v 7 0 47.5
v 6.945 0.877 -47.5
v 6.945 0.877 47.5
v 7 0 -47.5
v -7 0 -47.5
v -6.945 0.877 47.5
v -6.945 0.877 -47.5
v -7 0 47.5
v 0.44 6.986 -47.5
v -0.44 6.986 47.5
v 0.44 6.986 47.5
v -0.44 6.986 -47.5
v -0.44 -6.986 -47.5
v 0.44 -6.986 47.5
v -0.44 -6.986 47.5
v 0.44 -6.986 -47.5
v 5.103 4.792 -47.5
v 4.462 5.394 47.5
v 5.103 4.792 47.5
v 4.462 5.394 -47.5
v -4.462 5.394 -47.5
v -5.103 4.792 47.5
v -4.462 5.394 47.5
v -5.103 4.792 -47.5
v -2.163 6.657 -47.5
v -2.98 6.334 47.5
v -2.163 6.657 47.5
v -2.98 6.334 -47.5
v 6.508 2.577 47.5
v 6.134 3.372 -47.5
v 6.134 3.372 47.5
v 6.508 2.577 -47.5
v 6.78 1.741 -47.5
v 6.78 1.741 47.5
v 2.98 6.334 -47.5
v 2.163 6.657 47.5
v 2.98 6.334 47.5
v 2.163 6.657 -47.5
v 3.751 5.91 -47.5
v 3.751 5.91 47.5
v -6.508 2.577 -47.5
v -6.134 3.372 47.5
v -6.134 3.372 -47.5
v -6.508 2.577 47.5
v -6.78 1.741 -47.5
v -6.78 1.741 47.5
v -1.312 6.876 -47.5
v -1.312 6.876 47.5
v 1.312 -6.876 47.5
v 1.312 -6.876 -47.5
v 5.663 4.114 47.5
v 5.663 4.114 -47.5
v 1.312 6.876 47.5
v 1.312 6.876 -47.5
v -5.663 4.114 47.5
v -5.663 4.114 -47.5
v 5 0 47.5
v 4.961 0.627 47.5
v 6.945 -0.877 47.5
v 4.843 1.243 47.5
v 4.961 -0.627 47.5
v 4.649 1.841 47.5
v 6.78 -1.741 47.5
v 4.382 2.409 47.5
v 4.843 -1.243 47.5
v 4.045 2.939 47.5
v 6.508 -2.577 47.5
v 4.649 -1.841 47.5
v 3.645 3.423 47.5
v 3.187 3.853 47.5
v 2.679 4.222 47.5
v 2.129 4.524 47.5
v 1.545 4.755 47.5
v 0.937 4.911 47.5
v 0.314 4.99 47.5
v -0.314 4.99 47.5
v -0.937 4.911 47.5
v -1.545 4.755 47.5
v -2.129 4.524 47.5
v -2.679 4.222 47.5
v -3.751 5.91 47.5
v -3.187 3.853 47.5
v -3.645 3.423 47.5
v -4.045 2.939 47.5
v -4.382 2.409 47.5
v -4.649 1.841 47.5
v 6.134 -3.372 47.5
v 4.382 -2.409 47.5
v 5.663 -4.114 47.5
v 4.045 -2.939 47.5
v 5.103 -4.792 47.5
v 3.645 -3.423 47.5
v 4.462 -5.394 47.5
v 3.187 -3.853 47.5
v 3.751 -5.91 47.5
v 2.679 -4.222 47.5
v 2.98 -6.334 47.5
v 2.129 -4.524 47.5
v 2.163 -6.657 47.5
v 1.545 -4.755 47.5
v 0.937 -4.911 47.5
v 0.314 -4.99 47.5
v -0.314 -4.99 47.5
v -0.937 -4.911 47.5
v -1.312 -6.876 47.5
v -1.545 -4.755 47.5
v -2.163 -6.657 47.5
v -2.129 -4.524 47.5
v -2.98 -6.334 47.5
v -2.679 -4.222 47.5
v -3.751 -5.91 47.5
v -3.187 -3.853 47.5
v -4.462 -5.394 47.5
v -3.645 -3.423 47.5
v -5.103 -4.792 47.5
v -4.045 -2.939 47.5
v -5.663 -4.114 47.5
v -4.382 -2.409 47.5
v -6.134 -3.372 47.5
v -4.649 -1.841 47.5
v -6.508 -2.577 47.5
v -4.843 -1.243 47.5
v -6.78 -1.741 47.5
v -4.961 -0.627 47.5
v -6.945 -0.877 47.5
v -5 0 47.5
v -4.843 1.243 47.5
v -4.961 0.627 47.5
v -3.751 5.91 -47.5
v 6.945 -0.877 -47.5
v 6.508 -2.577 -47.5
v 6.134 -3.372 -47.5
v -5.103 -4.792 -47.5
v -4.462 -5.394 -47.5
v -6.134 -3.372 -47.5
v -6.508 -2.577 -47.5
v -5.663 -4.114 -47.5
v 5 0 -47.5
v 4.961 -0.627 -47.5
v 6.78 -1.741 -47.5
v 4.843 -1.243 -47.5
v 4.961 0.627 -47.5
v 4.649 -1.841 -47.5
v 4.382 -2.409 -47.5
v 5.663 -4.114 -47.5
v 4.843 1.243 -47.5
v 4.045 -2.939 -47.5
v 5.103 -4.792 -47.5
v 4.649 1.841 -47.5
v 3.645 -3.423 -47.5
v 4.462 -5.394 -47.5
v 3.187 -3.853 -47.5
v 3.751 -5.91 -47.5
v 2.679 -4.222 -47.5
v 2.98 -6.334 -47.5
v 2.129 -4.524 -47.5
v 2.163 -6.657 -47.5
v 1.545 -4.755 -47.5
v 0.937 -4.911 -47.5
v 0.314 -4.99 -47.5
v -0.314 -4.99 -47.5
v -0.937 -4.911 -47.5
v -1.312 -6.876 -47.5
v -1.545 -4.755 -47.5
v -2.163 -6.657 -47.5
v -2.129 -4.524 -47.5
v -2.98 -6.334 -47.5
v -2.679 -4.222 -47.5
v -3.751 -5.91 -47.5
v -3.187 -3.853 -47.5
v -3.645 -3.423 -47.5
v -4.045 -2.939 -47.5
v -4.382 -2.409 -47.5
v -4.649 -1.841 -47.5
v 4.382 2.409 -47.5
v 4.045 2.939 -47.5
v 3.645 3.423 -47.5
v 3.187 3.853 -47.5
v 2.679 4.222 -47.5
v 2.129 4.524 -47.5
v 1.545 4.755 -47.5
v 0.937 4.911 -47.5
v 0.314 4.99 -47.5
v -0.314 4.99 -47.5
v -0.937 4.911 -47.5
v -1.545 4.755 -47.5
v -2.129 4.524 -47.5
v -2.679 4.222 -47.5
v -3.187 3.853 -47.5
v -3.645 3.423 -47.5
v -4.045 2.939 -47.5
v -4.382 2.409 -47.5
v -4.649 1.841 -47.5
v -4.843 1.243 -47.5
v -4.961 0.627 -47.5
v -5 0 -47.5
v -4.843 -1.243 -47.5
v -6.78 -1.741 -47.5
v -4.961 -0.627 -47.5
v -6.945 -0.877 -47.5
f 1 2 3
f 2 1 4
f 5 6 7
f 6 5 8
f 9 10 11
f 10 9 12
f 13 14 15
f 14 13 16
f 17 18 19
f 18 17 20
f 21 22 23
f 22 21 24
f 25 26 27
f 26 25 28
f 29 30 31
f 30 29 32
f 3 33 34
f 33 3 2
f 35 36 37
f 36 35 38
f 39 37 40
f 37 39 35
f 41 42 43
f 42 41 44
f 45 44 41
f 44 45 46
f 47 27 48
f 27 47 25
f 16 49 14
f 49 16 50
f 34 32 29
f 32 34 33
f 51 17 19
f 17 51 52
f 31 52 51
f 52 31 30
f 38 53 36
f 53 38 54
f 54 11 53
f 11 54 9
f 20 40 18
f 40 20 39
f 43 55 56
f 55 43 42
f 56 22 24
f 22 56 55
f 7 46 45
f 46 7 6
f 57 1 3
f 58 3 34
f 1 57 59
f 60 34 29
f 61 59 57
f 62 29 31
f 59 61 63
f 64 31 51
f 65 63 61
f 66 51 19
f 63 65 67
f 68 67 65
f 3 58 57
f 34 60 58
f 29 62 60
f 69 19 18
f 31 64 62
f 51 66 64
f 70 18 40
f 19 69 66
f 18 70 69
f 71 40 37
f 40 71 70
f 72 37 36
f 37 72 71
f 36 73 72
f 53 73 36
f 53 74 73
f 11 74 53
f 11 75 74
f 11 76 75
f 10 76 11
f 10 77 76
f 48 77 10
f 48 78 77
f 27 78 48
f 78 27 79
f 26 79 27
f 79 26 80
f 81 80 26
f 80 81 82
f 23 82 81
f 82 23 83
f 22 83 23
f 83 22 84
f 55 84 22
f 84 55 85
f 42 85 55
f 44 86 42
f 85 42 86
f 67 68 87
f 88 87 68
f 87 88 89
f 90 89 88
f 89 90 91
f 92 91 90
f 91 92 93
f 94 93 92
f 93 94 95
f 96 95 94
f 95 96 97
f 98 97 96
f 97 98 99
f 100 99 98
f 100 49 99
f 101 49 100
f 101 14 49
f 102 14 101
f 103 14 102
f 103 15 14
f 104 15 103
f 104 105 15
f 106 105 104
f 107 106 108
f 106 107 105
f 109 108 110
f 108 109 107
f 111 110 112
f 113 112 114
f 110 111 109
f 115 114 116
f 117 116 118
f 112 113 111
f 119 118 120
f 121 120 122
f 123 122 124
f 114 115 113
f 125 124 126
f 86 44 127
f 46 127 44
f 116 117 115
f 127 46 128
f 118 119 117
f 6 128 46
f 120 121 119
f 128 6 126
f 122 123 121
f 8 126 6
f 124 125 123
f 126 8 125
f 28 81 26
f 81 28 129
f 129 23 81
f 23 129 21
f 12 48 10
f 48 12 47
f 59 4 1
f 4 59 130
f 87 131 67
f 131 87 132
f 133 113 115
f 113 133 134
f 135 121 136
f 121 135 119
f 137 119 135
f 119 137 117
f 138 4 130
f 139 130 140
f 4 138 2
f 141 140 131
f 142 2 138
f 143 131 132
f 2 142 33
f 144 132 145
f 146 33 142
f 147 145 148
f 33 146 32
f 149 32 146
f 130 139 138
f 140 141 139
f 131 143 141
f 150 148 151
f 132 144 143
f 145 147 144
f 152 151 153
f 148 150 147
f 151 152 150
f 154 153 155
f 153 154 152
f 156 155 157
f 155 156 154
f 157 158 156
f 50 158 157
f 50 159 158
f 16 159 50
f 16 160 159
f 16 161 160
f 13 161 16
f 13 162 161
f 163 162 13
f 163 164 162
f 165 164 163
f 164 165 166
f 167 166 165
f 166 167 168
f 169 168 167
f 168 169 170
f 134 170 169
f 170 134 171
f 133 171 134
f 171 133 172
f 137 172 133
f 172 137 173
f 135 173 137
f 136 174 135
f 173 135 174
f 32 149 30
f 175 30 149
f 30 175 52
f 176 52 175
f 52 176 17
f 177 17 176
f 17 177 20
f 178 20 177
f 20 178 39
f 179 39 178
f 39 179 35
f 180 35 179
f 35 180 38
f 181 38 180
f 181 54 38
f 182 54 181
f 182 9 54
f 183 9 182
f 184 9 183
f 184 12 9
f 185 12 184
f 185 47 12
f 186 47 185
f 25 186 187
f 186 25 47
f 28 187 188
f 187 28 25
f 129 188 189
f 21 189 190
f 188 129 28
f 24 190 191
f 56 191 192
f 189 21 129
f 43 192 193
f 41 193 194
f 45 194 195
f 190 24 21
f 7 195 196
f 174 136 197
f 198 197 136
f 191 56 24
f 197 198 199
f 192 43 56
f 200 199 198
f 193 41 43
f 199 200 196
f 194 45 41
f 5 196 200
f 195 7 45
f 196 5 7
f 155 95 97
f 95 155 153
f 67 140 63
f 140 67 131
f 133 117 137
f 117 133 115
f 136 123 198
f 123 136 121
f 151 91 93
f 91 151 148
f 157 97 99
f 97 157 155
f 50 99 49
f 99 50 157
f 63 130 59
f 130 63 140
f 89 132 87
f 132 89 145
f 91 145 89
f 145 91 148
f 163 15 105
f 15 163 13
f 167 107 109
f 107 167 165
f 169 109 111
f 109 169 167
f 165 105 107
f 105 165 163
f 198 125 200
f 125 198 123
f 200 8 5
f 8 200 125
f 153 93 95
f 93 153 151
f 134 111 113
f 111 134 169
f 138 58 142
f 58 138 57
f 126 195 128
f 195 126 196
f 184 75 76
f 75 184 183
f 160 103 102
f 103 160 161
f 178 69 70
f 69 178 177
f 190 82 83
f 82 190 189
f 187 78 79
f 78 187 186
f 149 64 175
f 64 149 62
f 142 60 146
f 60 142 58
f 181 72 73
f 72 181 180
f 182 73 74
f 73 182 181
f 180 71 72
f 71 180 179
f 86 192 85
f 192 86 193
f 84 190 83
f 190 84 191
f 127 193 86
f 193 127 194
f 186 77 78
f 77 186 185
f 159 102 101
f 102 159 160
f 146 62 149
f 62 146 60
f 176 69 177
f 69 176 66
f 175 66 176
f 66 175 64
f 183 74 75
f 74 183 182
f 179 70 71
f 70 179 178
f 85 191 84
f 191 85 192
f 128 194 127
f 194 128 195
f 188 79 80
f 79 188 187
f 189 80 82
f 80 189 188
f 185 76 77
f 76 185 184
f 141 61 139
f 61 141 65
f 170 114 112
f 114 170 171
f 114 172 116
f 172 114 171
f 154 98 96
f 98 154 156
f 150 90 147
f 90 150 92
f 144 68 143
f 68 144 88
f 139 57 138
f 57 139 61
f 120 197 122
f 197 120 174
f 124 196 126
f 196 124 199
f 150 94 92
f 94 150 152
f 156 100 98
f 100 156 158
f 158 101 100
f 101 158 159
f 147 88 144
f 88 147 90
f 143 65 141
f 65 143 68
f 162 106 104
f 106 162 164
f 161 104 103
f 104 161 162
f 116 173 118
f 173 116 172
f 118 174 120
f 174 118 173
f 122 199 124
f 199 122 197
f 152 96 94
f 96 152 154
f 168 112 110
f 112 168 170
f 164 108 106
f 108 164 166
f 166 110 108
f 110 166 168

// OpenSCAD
$fn = 50;


difference() {
	union() {
		translate(v = [0, 0, -47.5000000000]) {
			cylinder(h = 95, r = 7.0000000000);
		}
	}
	union() {
		translate(v = [0, 0, -100.0000000000]) {
			cylinder(h = 200, r = 5.0000000000);
		}
	}
}
